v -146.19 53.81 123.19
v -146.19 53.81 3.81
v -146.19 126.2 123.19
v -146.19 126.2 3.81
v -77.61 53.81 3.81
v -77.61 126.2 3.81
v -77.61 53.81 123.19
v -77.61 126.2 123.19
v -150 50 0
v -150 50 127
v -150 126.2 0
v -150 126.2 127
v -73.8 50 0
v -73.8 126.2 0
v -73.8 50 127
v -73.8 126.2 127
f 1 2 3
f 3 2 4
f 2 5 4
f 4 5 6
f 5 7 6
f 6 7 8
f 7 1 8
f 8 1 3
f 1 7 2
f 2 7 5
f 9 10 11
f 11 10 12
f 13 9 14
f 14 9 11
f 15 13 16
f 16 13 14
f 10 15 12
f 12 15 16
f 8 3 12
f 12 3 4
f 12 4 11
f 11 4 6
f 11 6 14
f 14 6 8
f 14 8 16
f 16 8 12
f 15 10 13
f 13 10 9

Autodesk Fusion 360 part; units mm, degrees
sketch "Sketch1" plane through (0, 0, 0) normal (0, 1, 0) x (1, 0, 0)
  line L0 (0, 0) -> (76.2, 0)
  line L1 (76.2, 0) -> (76.2, -203.2)
  line L2 (76.2, -203.2) -> (0, -203.2)
  line L3 (0, -203.2) -> (0, 0)
  dimension "d1" = 76.2
  dimension "d2" = 203.2
sketch "Sketch2" plane through (0, 50, 0) normal (0, 1, 0) x (-1, 0, 0)
  line L0 (0, 203.2) -> (-76.2, 203.2)
  line L1 (-76.2, 203.2) -> (-76.2, 0)
  line L2 (-76.2, 0) -> (0, 0)
  line L3 (0, 0) -> (0, 203.2)
  line L4 (150, 0) -> (73.8, 0)
  line L5 (73.8, 0) -> (73.8, 127)
  line L6 (73.8, 127) -> (150, 127)
  line L7 (150, 127) -> (150, 0)
  dimension "d8" = 76.2
  dimension "d9" = 127
extrude "Extrude2" add sketch "Sketch2" along normal blind 76.2 contours L4 L5 L6 L7
shell "Shell1" thickness 3.81 removed faces 1 at (-99.2, 126.2, 42.3333)
sketch "Sketch3" plane through (0, 0, 0) normal (0, 1, 0) x (1, 0, 0)
  line L0 (79.4367, 34.7313) -> (3.2367, 34.7313)
  line L1 (3.2367, 34.7313) -> (3.2367, 237.9313)
  line L2 (3.2367, 237.9313) -> (79.4367, 237.9313)
  line L3 (79.4367, 237.9313) -> (79.4367, 34.7313)
  dimension "d13" = 76.2
  dimension "d14" = 203.2
